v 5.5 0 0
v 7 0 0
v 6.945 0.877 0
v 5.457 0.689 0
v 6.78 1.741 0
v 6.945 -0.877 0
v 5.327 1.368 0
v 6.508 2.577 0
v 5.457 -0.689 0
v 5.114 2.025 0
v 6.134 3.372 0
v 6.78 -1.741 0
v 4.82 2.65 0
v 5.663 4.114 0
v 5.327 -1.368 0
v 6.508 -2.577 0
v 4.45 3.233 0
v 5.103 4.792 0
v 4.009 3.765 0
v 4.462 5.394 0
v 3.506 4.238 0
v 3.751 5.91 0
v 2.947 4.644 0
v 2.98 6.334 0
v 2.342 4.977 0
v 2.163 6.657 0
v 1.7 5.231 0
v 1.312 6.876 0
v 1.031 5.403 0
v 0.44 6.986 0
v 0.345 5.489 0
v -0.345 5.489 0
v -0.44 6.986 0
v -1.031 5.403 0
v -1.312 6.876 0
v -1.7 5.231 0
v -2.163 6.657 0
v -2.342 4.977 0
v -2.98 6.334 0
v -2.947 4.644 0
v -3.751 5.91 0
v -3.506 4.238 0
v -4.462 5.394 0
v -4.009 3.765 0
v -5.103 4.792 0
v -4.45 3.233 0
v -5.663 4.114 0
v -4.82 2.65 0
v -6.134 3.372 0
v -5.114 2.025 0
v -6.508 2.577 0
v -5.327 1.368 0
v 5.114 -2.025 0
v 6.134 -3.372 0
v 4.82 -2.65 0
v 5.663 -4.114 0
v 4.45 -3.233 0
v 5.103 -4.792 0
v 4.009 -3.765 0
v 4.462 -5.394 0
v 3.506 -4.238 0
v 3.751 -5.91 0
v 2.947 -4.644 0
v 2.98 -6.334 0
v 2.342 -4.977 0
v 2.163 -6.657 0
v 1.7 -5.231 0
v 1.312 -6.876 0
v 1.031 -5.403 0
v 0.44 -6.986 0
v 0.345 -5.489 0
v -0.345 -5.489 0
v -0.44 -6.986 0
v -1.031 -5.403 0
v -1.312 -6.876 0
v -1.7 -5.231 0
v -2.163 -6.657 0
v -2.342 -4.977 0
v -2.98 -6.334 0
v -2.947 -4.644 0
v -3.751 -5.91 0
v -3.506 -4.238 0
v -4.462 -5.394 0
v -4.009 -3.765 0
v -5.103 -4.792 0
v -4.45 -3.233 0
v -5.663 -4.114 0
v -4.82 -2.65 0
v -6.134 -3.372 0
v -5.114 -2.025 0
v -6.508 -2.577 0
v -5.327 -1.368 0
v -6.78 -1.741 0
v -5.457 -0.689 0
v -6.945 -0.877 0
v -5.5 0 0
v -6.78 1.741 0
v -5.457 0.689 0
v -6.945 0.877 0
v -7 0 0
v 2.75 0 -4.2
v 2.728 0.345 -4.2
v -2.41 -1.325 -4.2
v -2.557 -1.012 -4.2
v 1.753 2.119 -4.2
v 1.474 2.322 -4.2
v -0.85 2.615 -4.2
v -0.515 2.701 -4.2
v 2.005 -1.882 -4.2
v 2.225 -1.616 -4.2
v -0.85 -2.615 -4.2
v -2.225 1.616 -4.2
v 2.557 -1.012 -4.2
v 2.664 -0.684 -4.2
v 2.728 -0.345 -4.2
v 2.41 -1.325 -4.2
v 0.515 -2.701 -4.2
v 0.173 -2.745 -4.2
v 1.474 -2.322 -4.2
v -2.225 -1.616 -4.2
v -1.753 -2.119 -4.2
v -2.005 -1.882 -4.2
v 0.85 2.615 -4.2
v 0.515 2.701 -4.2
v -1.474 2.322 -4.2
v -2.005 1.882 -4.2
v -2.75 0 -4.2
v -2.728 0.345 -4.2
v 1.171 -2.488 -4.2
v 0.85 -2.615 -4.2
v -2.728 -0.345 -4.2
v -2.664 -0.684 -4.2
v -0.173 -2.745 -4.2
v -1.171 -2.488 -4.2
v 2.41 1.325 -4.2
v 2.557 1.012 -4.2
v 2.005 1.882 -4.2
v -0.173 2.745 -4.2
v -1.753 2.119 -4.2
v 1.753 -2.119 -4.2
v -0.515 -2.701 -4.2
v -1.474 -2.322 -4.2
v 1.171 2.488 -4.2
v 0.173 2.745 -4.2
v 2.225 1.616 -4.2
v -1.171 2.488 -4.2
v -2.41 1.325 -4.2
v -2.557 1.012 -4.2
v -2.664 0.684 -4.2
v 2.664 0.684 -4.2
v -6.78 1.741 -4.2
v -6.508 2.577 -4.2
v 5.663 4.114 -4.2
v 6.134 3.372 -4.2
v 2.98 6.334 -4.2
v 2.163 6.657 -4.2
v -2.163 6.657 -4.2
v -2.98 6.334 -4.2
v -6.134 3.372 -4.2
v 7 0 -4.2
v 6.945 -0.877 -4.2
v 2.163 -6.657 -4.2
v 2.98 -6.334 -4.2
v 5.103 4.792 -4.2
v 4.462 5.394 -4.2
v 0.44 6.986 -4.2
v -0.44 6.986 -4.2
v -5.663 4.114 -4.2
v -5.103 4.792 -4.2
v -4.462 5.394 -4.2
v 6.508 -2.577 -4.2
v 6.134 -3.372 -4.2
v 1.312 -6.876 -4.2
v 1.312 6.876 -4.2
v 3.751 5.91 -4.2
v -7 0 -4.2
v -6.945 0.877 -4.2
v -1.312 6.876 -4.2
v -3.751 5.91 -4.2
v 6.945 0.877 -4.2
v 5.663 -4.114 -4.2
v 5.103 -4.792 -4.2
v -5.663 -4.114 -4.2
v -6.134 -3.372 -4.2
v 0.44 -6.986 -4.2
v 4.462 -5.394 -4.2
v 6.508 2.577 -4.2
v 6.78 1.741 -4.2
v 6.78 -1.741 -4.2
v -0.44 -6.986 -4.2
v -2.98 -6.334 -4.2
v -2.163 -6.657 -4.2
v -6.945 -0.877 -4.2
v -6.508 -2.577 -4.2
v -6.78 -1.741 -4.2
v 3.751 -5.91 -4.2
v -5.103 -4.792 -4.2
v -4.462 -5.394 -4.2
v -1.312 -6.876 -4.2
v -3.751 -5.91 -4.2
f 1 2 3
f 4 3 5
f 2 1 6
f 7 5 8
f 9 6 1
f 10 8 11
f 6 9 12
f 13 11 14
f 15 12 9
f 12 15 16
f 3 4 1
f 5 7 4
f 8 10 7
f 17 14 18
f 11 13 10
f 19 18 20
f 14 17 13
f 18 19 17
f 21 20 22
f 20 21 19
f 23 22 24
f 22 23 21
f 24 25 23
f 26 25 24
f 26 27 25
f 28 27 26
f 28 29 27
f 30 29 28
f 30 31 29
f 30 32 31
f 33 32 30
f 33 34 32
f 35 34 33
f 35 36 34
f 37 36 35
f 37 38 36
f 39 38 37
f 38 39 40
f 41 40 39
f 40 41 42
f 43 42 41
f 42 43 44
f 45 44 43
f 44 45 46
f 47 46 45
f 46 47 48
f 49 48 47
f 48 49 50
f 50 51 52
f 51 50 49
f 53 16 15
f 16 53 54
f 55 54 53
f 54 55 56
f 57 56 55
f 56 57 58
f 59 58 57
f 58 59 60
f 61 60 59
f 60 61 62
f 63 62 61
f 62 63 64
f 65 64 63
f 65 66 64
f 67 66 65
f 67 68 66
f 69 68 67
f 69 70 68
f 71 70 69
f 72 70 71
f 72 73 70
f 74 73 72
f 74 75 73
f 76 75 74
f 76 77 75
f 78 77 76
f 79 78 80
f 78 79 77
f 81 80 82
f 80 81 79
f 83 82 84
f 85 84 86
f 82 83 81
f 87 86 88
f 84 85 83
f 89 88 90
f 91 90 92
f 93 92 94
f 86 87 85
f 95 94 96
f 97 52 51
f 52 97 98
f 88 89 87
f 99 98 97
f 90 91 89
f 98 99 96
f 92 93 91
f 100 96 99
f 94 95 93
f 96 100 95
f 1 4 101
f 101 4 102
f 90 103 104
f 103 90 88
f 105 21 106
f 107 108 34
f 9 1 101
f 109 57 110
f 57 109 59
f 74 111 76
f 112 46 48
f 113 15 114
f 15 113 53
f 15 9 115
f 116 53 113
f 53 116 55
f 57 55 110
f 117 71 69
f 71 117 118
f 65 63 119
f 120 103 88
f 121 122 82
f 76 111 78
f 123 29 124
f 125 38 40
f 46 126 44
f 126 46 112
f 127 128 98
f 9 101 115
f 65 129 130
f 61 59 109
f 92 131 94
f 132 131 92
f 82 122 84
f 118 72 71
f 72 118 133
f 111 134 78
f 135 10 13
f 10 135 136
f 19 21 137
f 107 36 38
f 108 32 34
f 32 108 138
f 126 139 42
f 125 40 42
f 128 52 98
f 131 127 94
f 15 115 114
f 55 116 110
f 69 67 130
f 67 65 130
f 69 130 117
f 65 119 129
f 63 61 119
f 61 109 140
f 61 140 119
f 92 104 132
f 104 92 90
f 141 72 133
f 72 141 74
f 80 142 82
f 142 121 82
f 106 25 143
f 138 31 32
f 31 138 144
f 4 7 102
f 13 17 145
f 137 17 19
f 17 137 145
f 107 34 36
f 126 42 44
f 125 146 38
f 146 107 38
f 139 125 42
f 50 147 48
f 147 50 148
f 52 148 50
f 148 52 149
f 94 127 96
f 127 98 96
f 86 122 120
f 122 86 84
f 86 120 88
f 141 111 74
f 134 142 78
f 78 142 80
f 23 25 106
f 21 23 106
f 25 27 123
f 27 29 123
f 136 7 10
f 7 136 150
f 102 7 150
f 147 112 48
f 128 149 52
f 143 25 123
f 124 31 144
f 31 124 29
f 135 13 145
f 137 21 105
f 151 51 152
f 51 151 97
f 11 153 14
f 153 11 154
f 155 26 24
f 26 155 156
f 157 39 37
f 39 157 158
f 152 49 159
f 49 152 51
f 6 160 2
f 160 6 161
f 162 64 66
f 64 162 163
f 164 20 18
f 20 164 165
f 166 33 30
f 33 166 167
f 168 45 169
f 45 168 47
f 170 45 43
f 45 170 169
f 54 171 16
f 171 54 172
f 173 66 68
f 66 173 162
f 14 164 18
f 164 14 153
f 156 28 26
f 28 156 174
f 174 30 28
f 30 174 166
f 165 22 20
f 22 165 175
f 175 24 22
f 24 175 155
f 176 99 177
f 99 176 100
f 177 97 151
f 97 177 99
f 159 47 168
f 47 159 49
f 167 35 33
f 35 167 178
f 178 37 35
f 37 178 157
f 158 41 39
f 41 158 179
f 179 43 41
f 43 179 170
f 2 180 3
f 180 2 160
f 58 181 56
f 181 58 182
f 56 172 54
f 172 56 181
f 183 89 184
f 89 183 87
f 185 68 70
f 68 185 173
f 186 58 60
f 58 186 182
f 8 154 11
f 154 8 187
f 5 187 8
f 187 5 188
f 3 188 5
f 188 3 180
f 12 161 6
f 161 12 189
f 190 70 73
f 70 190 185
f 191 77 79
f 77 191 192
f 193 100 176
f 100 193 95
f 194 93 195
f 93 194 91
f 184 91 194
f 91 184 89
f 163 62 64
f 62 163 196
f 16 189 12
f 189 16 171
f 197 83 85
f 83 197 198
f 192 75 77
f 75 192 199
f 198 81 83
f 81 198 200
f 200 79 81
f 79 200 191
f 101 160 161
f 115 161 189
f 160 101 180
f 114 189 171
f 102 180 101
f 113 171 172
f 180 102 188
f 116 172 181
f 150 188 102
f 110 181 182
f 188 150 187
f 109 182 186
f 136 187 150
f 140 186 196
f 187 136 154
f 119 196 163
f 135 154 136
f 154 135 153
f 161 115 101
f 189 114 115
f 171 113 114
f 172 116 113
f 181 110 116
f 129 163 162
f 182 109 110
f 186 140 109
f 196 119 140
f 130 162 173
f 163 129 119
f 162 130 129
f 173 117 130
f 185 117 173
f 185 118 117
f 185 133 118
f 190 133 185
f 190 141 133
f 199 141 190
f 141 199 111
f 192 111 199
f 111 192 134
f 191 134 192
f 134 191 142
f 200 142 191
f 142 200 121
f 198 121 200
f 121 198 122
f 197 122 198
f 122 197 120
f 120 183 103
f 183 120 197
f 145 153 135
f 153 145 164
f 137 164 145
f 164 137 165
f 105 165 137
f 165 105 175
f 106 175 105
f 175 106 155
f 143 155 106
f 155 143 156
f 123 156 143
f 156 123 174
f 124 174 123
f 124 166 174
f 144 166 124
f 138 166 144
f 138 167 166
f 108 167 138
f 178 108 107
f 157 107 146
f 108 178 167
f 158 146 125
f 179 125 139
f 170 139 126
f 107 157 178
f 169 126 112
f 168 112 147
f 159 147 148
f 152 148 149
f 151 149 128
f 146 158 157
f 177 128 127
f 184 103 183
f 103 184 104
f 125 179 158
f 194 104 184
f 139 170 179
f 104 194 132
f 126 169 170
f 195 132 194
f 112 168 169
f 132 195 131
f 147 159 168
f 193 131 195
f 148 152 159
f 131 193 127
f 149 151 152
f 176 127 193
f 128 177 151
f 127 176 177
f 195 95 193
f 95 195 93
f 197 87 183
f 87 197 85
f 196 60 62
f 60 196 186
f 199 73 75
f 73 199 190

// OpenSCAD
$fn = 50;


difference() {
	union() {
		translate(v = [0, 0, -4.2000000000]) {
			cylinder(h = 4.2000000000, r = 7.0000000000);
		}
	}
	union() {
		translate(v = [0, 0, 0]) {
			rotate(a = [0, 0, 0]) {
				difference() {
					union() {
						translate(v = [0, 0, -7.2000000000]) {
							cylinder(h = 7.2000000000, r = 2.2500000000);
						}
						translate(v = [0, 0, -4.2000000000]) {
							cylinder(h = 4.2000000000, r1 = 2.7500000000, r2 = 5.5000000000);
						}
						translate(v = [0, 0, -7.2000000000]) {
							cylinder(h = 7.2000000000, r = 2.7500000000);
						}
						translate(v = [0, 0, -7.2000000000]) {
							cylinder(h = 7.2000000000, r = 2.2500000000);
						}
					}
					union();
				}
			}
		}
	}
}
